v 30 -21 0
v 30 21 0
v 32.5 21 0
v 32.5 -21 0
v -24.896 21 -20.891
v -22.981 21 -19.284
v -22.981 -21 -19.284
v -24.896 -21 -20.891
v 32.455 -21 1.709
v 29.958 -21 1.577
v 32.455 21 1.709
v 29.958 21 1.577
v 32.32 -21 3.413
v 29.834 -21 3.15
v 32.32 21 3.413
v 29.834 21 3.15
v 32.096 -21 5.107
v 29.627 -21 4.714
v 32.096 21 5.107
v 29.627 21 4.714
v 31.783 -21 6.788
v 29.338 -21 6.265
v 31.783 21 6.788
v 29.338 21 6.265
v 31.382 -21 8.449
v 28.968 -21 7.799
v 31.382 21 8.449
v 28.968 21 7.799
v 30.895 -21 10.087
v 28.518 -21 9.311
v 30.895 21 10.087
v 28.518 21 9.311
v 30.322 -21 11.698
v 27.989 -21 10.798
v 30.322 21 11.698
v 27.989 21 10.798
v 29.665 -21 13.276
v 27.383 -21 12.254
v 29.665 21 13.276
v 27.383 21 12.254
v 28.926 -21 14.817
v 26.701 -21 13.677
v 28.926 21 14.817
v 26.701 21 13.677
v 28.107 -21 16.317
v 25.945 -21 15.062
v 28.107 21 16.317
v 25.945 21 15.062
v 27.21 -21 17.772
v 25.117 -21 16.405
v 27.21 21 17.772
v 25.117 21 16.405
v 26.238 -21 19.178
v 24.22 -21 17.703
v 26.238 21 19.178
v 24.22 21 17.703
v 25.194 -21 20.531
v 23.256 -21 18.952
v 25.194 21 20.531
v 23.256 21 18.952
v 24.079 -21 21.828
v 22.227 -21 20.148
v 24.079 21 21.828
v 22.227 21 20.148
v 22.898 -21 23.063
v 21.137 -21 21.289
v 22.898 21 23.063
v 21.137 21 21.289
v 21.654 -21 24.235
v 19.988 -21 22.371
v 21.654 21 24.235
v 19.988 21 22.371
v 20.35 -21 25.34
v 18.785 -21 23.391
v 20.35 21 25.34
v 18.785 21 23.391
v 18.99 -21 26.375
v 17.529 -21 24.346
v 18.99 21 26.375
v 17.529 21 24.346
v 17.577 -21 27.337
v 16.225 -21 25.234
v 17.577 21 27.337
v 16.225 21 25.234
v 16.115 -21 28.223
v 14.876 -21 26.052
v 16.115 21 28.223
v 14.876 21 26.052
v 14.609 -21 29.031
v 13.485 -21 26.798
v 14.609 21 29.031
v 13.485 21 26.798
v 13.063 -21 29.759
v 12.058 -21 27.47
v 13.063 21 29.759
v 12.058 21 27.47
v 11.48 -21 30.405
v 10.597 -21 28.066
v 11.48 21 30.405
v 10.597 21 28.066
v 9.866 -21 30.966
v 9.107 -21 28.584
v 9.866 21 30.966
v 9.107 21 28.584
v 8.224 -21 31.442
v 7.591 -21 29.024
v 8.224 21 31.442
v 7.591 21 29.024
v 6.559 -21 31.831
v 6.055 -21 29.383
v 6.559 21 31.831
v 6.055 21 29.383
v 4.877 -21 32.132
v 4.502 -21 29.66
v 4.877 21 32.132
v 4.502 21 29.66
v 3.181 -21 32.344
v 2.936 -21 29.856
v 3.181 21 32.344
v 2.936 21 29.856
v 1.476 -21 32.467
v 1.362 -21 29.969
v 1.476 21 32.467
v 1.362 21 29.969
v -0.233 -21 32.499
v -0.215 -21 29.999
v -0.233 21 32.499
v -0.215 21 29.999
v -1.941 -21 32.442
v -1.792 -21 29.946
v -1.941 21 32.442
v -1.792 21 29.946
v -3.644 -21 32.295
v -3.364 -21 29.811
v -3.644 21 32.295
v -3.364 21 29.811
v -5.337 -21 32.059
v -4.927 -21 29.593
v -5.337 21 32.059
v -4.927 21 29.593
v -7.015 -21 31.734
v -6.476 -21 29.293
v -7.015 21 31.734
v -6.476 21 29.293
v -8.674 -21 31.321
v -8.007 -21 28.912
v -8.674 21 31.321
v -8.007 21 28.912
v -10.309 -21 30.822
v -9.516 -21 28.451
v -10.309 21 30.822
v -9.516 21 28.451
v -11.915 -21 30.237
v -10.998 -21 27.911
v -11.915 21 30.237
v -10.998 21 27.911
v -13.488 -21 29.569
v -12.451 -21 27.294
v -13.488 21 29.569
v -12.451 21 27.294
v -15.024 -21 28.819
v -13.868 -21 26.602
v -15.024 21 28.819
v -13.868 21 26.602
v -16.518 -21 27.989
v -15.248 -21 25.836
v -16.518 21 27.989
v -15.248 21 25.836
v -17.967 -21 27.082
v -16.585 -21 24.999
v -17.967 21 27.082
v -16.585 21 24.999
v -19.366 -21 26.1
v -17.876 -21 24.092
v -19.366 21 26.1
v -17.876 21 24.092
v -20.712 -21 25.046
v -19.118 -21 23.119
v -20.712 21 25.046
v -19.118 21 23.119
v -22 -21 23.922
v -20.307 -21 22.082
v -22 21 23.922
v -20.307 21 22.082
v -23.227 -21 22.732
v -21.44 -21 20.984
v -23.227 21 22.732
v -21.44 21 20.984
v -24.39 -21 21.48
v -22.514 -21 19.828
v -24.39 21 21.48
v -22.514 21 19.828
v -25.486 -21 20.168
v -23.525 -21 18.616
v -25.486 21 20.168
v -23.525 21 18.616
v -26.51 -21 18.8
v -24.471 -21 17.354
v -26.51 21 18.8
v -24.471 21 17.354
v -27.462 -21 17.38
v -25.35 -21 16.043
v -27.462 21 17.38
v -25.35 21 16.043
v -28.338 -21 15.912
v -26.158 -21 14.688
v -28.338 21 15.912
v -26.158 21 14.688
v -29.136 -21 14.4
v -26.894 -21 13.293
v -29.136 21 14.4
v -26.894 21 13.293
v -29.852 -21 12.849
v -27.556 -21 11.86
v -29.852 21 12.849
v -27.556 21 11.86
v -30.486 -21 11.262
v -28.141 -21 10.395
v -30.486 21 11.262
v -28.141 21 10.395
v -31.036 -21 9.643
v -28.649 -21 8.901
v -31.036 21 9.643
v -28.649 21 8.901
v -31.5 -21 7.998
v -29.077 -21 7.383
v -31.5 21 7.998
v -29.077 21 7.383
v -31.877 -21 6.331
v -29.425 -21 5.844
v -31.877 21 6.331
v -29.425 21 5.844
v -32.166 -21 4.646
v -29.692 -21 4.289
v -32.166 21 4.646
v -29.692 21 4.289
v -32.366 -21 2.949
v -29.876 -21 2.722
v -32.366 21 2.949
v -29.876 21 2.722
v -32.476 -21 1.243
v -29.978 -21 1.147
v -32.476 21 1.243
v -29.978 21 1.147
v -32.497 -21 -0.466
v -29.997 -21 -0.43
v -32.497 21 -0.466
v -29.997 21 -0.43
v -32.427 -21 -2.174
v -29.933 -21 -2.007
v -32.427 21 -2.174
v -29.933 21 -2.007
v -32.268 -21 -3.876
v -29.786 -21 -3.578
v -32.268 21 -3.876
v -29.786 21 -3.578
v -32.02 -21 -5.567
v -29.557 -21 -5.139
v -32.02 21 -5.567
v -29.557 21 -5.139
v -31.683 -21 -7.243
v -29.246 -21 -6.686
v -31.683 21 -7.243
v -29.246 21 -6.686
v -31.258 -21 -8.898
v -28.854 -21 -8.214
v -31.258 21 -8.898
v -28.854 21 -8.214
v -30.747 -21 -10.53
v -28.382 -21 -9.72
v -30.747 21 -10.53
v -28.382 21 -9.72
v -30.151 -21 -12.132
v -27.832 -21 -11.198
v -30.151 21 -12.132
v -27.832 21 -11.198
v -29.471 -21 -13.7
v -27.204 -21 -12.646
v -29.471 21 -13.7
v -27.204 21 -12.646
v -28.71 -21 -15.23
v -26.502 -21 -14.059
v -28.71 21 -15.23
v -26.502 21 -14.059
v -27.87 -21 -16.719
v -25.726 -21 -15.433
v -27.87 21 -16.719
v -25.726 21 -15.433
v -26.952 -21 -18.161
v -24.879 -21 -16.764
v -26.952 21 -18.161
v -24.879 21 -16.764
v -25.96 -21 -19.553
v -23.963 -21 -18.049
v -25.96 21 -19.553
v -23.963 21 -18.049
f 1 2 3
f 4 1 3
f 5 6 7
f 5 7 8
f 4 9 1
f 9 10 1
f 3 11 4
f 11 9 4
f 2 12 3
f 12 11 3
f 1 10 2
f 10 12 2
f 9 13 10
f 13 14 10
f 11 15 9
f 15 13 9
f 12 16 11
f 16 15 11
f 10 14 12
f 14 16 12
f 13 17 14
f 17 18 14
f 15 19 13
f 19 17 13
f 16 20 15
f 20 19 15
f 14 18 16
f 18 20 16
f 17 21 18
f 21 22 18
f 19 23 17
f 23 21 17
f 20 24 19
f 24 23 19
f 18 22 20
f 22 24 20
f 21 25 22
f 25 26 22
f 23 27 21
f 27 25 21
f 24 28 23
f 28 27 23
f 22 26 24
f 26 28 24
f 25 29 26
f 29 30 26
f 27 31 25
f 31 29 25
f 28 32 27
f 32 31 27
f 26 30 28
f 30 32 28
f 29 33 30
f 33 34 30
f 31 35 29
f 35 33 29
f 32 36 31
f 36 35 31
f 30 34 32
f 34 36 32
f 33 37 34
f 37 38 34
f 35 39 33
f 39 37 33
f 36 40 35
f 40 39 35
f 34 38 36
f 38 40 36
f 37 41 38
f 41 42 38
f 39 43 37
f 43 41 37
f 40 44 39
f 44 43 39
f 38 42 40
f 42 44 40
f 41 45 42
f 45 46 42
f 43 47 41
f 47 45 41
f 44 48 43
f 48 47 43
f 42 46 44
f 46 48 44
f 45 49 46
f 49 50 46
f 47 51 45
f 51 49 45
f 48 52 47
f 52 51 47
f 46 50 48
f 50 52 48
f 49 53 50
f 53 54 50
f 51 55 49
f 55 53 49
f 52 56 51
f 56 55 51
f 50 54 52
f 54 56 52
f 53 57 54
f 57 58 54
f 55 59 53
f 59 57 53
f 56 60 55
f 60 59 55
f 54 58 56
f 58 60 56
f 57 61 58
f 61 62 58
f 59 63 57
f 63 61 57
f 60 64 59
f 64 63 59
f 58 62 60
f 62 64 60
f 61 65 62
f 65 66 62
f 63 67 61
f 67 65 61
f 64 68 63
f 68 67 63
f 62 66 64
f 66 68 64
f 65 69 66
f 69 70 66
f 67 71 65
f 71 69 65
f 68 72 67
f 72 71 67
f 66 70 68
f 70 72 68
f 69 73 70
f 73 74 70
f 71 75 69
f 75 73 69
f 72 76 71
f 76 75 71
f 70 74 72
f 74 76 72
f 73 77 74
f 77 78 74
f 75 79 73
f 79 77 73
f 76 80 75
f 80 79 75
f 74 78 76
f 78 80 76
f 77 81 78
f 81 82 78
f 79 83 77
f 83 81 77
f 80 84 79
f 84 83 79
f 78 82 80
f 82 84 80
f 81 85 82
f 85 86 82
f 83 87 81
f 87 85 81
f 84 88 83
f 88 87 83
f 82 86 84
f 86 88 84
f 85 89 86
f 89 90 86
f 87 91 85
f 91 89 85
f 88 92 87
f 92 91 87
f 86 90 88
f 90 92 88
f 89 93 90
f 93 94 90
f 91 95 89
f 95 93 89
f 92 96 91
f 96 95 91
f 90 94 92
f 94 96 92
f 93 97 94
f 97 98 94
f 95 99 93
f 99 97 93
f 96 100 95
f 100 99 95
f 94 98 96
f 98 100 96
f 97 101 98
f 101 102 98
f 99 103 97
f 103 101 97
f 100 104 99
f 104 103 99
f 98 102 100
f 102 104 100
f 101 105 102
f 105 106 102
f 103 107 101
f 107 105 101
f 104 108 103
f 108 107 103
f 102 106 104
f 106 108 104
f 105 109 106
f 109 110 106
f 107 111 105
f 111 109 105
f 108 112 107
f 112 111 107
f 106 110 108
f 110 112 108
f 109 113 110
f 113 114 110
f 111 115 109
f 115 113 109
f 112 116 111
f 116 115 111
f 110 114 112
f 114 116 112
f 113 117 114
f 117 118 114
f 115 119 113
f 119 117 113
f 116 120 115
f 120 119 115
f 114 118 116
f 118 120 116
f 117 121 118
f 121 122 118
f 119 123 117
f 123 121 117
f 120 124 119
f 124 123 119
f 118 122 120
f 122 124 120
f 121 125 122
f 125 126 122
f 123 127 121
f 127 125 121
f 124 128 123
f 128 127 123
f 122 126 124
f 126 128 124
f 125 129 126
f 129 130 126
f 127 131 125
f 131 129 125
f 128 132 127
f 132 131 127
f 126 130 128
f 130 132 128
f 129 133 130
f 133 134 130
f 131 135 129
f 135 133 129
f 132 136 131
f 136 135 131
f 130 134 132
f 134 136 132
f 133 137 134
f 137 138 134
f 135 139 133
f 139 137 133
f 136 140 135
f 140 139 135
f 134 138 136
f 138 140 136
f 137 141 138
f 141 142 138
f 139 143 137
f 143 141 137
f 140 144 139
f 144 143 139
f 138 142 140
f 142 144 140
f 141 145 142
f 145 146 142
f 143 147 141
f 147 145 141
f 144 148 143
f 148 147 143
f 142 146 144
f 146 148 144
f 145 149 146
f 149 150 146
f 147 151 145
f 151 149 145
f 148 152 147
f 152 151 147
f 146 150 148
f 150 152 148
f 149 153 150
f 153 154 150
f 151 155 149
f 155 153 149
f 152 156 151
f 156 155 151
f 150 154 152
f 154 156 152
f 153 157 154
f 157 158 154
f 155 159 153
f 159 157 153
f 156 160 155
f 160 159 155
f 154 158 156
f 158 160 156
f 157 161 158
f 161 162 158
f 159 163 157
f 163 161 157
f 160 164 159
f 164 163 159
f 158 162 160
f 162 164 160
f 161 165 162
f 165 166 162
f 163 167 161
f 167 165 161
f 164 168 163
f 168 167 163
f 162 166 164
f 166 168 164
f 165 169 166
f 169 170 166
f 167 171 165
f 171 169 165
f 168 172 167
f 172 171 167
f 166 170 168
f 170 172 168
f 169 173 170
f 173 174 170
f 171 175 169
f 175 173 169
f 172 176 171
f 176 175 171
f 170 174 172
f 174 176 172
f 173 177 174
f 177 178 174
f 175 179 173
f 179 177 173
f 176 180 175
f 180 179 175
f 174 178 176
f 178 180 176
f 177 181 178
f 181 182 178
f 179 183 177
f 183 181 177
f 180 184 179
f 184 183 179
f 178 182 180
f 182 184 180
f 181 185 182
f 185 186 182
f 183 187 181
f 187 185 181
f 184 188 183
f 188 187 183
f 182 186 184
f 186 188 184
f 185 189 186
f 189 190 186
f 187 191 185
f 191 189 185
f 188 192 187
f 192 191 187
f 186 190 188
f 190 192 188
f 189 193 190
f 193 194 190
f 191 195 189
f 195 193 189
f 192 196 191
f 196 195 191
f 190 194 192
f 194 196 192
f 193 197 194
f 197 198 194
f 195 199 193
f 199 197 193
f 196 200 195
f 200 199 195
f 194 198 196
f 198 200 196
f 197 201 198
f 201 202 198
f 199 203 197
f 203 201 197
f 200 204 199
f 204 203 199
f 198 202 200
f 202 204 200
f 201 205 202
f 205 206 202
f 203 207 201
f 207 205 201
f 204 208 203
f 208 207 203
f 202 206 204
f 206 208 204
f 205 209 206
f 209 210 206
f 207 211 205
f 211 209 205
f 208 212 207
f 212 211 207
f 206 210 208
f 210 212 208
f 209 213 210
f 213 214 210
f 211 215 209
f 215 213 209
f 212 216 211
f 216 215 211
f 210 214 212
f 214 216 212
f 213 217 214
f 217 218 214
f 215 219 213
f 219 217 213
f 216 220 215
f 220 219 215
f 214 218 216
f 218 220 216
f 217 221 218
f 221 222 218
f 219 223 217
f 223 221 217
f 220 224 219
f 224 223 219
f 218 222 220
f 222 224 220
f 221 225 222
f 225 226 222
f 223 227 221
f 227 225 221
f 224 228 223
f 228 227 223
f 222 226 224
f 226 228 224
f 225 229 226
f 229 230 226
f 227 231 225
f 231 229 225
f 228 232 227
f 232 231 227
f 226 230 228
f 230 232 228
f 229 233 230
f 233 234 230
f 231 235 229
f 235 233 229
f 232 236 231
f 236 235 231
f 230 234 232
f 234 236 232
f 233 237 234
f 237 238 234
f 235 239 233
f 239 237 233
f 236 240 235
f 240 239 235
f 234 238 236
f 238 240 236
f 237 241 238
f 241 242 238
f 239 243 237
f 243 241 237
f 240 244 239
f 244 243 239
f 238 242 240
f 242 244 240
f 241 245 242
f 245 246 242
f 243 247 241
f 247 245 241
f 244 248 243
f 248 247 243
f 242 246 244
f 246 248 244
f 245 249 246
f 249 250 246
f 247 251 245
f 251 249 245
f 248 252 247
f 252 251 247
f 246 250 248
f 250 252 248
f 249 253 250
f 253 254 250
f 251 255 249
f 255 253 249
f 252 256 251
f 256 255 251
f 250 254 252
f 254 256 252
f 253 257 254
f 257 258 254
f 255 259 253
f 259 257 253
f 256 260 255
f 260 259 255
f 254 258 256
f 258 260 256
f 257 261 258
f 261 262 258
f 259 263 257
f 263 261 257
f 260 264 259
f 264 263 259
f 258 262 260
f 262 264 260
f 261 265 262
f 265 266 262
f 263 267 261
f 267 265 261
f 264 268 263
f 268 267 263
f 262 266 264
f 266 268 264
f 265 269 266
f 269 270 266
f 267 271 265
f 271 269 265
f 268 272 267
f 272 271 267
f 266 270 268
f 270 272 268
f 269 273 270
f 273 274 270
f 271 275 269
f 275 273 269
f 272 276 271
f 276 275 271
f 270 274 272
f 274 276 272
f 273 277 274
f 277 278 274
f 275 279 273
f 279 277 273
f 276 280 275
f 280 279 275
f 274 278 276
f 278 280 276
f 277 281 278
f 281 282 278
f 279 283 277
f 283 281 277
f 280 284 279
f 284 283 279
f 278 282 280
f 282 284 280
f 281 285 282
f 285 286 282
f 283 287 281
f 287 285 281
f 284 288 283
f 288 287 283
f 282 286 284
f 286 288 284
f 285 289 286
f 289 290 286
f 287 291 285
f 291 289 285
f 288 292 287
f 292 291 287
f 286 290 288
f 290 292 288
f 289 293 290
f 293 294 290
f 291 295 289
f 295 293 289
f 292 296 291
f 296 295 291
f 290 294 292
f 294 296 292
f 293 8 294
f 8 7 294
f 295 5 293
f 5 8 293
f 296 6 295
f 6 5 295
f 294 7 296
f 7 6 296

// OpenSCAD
// Simple printable curved armband strap segment
// Dimensions in mm; intended as a visual/fit prototype.
inner_r = 30;
strap_t = 2.5;
strap_w = 42;
arc = 220;

rotate([90,0,0])
rotate_extrude(angle=arc, convexity=10, $fn=120)
  translate([inner_r, -strap_w/2])
    square([strap_t, strap_w], center=false);
